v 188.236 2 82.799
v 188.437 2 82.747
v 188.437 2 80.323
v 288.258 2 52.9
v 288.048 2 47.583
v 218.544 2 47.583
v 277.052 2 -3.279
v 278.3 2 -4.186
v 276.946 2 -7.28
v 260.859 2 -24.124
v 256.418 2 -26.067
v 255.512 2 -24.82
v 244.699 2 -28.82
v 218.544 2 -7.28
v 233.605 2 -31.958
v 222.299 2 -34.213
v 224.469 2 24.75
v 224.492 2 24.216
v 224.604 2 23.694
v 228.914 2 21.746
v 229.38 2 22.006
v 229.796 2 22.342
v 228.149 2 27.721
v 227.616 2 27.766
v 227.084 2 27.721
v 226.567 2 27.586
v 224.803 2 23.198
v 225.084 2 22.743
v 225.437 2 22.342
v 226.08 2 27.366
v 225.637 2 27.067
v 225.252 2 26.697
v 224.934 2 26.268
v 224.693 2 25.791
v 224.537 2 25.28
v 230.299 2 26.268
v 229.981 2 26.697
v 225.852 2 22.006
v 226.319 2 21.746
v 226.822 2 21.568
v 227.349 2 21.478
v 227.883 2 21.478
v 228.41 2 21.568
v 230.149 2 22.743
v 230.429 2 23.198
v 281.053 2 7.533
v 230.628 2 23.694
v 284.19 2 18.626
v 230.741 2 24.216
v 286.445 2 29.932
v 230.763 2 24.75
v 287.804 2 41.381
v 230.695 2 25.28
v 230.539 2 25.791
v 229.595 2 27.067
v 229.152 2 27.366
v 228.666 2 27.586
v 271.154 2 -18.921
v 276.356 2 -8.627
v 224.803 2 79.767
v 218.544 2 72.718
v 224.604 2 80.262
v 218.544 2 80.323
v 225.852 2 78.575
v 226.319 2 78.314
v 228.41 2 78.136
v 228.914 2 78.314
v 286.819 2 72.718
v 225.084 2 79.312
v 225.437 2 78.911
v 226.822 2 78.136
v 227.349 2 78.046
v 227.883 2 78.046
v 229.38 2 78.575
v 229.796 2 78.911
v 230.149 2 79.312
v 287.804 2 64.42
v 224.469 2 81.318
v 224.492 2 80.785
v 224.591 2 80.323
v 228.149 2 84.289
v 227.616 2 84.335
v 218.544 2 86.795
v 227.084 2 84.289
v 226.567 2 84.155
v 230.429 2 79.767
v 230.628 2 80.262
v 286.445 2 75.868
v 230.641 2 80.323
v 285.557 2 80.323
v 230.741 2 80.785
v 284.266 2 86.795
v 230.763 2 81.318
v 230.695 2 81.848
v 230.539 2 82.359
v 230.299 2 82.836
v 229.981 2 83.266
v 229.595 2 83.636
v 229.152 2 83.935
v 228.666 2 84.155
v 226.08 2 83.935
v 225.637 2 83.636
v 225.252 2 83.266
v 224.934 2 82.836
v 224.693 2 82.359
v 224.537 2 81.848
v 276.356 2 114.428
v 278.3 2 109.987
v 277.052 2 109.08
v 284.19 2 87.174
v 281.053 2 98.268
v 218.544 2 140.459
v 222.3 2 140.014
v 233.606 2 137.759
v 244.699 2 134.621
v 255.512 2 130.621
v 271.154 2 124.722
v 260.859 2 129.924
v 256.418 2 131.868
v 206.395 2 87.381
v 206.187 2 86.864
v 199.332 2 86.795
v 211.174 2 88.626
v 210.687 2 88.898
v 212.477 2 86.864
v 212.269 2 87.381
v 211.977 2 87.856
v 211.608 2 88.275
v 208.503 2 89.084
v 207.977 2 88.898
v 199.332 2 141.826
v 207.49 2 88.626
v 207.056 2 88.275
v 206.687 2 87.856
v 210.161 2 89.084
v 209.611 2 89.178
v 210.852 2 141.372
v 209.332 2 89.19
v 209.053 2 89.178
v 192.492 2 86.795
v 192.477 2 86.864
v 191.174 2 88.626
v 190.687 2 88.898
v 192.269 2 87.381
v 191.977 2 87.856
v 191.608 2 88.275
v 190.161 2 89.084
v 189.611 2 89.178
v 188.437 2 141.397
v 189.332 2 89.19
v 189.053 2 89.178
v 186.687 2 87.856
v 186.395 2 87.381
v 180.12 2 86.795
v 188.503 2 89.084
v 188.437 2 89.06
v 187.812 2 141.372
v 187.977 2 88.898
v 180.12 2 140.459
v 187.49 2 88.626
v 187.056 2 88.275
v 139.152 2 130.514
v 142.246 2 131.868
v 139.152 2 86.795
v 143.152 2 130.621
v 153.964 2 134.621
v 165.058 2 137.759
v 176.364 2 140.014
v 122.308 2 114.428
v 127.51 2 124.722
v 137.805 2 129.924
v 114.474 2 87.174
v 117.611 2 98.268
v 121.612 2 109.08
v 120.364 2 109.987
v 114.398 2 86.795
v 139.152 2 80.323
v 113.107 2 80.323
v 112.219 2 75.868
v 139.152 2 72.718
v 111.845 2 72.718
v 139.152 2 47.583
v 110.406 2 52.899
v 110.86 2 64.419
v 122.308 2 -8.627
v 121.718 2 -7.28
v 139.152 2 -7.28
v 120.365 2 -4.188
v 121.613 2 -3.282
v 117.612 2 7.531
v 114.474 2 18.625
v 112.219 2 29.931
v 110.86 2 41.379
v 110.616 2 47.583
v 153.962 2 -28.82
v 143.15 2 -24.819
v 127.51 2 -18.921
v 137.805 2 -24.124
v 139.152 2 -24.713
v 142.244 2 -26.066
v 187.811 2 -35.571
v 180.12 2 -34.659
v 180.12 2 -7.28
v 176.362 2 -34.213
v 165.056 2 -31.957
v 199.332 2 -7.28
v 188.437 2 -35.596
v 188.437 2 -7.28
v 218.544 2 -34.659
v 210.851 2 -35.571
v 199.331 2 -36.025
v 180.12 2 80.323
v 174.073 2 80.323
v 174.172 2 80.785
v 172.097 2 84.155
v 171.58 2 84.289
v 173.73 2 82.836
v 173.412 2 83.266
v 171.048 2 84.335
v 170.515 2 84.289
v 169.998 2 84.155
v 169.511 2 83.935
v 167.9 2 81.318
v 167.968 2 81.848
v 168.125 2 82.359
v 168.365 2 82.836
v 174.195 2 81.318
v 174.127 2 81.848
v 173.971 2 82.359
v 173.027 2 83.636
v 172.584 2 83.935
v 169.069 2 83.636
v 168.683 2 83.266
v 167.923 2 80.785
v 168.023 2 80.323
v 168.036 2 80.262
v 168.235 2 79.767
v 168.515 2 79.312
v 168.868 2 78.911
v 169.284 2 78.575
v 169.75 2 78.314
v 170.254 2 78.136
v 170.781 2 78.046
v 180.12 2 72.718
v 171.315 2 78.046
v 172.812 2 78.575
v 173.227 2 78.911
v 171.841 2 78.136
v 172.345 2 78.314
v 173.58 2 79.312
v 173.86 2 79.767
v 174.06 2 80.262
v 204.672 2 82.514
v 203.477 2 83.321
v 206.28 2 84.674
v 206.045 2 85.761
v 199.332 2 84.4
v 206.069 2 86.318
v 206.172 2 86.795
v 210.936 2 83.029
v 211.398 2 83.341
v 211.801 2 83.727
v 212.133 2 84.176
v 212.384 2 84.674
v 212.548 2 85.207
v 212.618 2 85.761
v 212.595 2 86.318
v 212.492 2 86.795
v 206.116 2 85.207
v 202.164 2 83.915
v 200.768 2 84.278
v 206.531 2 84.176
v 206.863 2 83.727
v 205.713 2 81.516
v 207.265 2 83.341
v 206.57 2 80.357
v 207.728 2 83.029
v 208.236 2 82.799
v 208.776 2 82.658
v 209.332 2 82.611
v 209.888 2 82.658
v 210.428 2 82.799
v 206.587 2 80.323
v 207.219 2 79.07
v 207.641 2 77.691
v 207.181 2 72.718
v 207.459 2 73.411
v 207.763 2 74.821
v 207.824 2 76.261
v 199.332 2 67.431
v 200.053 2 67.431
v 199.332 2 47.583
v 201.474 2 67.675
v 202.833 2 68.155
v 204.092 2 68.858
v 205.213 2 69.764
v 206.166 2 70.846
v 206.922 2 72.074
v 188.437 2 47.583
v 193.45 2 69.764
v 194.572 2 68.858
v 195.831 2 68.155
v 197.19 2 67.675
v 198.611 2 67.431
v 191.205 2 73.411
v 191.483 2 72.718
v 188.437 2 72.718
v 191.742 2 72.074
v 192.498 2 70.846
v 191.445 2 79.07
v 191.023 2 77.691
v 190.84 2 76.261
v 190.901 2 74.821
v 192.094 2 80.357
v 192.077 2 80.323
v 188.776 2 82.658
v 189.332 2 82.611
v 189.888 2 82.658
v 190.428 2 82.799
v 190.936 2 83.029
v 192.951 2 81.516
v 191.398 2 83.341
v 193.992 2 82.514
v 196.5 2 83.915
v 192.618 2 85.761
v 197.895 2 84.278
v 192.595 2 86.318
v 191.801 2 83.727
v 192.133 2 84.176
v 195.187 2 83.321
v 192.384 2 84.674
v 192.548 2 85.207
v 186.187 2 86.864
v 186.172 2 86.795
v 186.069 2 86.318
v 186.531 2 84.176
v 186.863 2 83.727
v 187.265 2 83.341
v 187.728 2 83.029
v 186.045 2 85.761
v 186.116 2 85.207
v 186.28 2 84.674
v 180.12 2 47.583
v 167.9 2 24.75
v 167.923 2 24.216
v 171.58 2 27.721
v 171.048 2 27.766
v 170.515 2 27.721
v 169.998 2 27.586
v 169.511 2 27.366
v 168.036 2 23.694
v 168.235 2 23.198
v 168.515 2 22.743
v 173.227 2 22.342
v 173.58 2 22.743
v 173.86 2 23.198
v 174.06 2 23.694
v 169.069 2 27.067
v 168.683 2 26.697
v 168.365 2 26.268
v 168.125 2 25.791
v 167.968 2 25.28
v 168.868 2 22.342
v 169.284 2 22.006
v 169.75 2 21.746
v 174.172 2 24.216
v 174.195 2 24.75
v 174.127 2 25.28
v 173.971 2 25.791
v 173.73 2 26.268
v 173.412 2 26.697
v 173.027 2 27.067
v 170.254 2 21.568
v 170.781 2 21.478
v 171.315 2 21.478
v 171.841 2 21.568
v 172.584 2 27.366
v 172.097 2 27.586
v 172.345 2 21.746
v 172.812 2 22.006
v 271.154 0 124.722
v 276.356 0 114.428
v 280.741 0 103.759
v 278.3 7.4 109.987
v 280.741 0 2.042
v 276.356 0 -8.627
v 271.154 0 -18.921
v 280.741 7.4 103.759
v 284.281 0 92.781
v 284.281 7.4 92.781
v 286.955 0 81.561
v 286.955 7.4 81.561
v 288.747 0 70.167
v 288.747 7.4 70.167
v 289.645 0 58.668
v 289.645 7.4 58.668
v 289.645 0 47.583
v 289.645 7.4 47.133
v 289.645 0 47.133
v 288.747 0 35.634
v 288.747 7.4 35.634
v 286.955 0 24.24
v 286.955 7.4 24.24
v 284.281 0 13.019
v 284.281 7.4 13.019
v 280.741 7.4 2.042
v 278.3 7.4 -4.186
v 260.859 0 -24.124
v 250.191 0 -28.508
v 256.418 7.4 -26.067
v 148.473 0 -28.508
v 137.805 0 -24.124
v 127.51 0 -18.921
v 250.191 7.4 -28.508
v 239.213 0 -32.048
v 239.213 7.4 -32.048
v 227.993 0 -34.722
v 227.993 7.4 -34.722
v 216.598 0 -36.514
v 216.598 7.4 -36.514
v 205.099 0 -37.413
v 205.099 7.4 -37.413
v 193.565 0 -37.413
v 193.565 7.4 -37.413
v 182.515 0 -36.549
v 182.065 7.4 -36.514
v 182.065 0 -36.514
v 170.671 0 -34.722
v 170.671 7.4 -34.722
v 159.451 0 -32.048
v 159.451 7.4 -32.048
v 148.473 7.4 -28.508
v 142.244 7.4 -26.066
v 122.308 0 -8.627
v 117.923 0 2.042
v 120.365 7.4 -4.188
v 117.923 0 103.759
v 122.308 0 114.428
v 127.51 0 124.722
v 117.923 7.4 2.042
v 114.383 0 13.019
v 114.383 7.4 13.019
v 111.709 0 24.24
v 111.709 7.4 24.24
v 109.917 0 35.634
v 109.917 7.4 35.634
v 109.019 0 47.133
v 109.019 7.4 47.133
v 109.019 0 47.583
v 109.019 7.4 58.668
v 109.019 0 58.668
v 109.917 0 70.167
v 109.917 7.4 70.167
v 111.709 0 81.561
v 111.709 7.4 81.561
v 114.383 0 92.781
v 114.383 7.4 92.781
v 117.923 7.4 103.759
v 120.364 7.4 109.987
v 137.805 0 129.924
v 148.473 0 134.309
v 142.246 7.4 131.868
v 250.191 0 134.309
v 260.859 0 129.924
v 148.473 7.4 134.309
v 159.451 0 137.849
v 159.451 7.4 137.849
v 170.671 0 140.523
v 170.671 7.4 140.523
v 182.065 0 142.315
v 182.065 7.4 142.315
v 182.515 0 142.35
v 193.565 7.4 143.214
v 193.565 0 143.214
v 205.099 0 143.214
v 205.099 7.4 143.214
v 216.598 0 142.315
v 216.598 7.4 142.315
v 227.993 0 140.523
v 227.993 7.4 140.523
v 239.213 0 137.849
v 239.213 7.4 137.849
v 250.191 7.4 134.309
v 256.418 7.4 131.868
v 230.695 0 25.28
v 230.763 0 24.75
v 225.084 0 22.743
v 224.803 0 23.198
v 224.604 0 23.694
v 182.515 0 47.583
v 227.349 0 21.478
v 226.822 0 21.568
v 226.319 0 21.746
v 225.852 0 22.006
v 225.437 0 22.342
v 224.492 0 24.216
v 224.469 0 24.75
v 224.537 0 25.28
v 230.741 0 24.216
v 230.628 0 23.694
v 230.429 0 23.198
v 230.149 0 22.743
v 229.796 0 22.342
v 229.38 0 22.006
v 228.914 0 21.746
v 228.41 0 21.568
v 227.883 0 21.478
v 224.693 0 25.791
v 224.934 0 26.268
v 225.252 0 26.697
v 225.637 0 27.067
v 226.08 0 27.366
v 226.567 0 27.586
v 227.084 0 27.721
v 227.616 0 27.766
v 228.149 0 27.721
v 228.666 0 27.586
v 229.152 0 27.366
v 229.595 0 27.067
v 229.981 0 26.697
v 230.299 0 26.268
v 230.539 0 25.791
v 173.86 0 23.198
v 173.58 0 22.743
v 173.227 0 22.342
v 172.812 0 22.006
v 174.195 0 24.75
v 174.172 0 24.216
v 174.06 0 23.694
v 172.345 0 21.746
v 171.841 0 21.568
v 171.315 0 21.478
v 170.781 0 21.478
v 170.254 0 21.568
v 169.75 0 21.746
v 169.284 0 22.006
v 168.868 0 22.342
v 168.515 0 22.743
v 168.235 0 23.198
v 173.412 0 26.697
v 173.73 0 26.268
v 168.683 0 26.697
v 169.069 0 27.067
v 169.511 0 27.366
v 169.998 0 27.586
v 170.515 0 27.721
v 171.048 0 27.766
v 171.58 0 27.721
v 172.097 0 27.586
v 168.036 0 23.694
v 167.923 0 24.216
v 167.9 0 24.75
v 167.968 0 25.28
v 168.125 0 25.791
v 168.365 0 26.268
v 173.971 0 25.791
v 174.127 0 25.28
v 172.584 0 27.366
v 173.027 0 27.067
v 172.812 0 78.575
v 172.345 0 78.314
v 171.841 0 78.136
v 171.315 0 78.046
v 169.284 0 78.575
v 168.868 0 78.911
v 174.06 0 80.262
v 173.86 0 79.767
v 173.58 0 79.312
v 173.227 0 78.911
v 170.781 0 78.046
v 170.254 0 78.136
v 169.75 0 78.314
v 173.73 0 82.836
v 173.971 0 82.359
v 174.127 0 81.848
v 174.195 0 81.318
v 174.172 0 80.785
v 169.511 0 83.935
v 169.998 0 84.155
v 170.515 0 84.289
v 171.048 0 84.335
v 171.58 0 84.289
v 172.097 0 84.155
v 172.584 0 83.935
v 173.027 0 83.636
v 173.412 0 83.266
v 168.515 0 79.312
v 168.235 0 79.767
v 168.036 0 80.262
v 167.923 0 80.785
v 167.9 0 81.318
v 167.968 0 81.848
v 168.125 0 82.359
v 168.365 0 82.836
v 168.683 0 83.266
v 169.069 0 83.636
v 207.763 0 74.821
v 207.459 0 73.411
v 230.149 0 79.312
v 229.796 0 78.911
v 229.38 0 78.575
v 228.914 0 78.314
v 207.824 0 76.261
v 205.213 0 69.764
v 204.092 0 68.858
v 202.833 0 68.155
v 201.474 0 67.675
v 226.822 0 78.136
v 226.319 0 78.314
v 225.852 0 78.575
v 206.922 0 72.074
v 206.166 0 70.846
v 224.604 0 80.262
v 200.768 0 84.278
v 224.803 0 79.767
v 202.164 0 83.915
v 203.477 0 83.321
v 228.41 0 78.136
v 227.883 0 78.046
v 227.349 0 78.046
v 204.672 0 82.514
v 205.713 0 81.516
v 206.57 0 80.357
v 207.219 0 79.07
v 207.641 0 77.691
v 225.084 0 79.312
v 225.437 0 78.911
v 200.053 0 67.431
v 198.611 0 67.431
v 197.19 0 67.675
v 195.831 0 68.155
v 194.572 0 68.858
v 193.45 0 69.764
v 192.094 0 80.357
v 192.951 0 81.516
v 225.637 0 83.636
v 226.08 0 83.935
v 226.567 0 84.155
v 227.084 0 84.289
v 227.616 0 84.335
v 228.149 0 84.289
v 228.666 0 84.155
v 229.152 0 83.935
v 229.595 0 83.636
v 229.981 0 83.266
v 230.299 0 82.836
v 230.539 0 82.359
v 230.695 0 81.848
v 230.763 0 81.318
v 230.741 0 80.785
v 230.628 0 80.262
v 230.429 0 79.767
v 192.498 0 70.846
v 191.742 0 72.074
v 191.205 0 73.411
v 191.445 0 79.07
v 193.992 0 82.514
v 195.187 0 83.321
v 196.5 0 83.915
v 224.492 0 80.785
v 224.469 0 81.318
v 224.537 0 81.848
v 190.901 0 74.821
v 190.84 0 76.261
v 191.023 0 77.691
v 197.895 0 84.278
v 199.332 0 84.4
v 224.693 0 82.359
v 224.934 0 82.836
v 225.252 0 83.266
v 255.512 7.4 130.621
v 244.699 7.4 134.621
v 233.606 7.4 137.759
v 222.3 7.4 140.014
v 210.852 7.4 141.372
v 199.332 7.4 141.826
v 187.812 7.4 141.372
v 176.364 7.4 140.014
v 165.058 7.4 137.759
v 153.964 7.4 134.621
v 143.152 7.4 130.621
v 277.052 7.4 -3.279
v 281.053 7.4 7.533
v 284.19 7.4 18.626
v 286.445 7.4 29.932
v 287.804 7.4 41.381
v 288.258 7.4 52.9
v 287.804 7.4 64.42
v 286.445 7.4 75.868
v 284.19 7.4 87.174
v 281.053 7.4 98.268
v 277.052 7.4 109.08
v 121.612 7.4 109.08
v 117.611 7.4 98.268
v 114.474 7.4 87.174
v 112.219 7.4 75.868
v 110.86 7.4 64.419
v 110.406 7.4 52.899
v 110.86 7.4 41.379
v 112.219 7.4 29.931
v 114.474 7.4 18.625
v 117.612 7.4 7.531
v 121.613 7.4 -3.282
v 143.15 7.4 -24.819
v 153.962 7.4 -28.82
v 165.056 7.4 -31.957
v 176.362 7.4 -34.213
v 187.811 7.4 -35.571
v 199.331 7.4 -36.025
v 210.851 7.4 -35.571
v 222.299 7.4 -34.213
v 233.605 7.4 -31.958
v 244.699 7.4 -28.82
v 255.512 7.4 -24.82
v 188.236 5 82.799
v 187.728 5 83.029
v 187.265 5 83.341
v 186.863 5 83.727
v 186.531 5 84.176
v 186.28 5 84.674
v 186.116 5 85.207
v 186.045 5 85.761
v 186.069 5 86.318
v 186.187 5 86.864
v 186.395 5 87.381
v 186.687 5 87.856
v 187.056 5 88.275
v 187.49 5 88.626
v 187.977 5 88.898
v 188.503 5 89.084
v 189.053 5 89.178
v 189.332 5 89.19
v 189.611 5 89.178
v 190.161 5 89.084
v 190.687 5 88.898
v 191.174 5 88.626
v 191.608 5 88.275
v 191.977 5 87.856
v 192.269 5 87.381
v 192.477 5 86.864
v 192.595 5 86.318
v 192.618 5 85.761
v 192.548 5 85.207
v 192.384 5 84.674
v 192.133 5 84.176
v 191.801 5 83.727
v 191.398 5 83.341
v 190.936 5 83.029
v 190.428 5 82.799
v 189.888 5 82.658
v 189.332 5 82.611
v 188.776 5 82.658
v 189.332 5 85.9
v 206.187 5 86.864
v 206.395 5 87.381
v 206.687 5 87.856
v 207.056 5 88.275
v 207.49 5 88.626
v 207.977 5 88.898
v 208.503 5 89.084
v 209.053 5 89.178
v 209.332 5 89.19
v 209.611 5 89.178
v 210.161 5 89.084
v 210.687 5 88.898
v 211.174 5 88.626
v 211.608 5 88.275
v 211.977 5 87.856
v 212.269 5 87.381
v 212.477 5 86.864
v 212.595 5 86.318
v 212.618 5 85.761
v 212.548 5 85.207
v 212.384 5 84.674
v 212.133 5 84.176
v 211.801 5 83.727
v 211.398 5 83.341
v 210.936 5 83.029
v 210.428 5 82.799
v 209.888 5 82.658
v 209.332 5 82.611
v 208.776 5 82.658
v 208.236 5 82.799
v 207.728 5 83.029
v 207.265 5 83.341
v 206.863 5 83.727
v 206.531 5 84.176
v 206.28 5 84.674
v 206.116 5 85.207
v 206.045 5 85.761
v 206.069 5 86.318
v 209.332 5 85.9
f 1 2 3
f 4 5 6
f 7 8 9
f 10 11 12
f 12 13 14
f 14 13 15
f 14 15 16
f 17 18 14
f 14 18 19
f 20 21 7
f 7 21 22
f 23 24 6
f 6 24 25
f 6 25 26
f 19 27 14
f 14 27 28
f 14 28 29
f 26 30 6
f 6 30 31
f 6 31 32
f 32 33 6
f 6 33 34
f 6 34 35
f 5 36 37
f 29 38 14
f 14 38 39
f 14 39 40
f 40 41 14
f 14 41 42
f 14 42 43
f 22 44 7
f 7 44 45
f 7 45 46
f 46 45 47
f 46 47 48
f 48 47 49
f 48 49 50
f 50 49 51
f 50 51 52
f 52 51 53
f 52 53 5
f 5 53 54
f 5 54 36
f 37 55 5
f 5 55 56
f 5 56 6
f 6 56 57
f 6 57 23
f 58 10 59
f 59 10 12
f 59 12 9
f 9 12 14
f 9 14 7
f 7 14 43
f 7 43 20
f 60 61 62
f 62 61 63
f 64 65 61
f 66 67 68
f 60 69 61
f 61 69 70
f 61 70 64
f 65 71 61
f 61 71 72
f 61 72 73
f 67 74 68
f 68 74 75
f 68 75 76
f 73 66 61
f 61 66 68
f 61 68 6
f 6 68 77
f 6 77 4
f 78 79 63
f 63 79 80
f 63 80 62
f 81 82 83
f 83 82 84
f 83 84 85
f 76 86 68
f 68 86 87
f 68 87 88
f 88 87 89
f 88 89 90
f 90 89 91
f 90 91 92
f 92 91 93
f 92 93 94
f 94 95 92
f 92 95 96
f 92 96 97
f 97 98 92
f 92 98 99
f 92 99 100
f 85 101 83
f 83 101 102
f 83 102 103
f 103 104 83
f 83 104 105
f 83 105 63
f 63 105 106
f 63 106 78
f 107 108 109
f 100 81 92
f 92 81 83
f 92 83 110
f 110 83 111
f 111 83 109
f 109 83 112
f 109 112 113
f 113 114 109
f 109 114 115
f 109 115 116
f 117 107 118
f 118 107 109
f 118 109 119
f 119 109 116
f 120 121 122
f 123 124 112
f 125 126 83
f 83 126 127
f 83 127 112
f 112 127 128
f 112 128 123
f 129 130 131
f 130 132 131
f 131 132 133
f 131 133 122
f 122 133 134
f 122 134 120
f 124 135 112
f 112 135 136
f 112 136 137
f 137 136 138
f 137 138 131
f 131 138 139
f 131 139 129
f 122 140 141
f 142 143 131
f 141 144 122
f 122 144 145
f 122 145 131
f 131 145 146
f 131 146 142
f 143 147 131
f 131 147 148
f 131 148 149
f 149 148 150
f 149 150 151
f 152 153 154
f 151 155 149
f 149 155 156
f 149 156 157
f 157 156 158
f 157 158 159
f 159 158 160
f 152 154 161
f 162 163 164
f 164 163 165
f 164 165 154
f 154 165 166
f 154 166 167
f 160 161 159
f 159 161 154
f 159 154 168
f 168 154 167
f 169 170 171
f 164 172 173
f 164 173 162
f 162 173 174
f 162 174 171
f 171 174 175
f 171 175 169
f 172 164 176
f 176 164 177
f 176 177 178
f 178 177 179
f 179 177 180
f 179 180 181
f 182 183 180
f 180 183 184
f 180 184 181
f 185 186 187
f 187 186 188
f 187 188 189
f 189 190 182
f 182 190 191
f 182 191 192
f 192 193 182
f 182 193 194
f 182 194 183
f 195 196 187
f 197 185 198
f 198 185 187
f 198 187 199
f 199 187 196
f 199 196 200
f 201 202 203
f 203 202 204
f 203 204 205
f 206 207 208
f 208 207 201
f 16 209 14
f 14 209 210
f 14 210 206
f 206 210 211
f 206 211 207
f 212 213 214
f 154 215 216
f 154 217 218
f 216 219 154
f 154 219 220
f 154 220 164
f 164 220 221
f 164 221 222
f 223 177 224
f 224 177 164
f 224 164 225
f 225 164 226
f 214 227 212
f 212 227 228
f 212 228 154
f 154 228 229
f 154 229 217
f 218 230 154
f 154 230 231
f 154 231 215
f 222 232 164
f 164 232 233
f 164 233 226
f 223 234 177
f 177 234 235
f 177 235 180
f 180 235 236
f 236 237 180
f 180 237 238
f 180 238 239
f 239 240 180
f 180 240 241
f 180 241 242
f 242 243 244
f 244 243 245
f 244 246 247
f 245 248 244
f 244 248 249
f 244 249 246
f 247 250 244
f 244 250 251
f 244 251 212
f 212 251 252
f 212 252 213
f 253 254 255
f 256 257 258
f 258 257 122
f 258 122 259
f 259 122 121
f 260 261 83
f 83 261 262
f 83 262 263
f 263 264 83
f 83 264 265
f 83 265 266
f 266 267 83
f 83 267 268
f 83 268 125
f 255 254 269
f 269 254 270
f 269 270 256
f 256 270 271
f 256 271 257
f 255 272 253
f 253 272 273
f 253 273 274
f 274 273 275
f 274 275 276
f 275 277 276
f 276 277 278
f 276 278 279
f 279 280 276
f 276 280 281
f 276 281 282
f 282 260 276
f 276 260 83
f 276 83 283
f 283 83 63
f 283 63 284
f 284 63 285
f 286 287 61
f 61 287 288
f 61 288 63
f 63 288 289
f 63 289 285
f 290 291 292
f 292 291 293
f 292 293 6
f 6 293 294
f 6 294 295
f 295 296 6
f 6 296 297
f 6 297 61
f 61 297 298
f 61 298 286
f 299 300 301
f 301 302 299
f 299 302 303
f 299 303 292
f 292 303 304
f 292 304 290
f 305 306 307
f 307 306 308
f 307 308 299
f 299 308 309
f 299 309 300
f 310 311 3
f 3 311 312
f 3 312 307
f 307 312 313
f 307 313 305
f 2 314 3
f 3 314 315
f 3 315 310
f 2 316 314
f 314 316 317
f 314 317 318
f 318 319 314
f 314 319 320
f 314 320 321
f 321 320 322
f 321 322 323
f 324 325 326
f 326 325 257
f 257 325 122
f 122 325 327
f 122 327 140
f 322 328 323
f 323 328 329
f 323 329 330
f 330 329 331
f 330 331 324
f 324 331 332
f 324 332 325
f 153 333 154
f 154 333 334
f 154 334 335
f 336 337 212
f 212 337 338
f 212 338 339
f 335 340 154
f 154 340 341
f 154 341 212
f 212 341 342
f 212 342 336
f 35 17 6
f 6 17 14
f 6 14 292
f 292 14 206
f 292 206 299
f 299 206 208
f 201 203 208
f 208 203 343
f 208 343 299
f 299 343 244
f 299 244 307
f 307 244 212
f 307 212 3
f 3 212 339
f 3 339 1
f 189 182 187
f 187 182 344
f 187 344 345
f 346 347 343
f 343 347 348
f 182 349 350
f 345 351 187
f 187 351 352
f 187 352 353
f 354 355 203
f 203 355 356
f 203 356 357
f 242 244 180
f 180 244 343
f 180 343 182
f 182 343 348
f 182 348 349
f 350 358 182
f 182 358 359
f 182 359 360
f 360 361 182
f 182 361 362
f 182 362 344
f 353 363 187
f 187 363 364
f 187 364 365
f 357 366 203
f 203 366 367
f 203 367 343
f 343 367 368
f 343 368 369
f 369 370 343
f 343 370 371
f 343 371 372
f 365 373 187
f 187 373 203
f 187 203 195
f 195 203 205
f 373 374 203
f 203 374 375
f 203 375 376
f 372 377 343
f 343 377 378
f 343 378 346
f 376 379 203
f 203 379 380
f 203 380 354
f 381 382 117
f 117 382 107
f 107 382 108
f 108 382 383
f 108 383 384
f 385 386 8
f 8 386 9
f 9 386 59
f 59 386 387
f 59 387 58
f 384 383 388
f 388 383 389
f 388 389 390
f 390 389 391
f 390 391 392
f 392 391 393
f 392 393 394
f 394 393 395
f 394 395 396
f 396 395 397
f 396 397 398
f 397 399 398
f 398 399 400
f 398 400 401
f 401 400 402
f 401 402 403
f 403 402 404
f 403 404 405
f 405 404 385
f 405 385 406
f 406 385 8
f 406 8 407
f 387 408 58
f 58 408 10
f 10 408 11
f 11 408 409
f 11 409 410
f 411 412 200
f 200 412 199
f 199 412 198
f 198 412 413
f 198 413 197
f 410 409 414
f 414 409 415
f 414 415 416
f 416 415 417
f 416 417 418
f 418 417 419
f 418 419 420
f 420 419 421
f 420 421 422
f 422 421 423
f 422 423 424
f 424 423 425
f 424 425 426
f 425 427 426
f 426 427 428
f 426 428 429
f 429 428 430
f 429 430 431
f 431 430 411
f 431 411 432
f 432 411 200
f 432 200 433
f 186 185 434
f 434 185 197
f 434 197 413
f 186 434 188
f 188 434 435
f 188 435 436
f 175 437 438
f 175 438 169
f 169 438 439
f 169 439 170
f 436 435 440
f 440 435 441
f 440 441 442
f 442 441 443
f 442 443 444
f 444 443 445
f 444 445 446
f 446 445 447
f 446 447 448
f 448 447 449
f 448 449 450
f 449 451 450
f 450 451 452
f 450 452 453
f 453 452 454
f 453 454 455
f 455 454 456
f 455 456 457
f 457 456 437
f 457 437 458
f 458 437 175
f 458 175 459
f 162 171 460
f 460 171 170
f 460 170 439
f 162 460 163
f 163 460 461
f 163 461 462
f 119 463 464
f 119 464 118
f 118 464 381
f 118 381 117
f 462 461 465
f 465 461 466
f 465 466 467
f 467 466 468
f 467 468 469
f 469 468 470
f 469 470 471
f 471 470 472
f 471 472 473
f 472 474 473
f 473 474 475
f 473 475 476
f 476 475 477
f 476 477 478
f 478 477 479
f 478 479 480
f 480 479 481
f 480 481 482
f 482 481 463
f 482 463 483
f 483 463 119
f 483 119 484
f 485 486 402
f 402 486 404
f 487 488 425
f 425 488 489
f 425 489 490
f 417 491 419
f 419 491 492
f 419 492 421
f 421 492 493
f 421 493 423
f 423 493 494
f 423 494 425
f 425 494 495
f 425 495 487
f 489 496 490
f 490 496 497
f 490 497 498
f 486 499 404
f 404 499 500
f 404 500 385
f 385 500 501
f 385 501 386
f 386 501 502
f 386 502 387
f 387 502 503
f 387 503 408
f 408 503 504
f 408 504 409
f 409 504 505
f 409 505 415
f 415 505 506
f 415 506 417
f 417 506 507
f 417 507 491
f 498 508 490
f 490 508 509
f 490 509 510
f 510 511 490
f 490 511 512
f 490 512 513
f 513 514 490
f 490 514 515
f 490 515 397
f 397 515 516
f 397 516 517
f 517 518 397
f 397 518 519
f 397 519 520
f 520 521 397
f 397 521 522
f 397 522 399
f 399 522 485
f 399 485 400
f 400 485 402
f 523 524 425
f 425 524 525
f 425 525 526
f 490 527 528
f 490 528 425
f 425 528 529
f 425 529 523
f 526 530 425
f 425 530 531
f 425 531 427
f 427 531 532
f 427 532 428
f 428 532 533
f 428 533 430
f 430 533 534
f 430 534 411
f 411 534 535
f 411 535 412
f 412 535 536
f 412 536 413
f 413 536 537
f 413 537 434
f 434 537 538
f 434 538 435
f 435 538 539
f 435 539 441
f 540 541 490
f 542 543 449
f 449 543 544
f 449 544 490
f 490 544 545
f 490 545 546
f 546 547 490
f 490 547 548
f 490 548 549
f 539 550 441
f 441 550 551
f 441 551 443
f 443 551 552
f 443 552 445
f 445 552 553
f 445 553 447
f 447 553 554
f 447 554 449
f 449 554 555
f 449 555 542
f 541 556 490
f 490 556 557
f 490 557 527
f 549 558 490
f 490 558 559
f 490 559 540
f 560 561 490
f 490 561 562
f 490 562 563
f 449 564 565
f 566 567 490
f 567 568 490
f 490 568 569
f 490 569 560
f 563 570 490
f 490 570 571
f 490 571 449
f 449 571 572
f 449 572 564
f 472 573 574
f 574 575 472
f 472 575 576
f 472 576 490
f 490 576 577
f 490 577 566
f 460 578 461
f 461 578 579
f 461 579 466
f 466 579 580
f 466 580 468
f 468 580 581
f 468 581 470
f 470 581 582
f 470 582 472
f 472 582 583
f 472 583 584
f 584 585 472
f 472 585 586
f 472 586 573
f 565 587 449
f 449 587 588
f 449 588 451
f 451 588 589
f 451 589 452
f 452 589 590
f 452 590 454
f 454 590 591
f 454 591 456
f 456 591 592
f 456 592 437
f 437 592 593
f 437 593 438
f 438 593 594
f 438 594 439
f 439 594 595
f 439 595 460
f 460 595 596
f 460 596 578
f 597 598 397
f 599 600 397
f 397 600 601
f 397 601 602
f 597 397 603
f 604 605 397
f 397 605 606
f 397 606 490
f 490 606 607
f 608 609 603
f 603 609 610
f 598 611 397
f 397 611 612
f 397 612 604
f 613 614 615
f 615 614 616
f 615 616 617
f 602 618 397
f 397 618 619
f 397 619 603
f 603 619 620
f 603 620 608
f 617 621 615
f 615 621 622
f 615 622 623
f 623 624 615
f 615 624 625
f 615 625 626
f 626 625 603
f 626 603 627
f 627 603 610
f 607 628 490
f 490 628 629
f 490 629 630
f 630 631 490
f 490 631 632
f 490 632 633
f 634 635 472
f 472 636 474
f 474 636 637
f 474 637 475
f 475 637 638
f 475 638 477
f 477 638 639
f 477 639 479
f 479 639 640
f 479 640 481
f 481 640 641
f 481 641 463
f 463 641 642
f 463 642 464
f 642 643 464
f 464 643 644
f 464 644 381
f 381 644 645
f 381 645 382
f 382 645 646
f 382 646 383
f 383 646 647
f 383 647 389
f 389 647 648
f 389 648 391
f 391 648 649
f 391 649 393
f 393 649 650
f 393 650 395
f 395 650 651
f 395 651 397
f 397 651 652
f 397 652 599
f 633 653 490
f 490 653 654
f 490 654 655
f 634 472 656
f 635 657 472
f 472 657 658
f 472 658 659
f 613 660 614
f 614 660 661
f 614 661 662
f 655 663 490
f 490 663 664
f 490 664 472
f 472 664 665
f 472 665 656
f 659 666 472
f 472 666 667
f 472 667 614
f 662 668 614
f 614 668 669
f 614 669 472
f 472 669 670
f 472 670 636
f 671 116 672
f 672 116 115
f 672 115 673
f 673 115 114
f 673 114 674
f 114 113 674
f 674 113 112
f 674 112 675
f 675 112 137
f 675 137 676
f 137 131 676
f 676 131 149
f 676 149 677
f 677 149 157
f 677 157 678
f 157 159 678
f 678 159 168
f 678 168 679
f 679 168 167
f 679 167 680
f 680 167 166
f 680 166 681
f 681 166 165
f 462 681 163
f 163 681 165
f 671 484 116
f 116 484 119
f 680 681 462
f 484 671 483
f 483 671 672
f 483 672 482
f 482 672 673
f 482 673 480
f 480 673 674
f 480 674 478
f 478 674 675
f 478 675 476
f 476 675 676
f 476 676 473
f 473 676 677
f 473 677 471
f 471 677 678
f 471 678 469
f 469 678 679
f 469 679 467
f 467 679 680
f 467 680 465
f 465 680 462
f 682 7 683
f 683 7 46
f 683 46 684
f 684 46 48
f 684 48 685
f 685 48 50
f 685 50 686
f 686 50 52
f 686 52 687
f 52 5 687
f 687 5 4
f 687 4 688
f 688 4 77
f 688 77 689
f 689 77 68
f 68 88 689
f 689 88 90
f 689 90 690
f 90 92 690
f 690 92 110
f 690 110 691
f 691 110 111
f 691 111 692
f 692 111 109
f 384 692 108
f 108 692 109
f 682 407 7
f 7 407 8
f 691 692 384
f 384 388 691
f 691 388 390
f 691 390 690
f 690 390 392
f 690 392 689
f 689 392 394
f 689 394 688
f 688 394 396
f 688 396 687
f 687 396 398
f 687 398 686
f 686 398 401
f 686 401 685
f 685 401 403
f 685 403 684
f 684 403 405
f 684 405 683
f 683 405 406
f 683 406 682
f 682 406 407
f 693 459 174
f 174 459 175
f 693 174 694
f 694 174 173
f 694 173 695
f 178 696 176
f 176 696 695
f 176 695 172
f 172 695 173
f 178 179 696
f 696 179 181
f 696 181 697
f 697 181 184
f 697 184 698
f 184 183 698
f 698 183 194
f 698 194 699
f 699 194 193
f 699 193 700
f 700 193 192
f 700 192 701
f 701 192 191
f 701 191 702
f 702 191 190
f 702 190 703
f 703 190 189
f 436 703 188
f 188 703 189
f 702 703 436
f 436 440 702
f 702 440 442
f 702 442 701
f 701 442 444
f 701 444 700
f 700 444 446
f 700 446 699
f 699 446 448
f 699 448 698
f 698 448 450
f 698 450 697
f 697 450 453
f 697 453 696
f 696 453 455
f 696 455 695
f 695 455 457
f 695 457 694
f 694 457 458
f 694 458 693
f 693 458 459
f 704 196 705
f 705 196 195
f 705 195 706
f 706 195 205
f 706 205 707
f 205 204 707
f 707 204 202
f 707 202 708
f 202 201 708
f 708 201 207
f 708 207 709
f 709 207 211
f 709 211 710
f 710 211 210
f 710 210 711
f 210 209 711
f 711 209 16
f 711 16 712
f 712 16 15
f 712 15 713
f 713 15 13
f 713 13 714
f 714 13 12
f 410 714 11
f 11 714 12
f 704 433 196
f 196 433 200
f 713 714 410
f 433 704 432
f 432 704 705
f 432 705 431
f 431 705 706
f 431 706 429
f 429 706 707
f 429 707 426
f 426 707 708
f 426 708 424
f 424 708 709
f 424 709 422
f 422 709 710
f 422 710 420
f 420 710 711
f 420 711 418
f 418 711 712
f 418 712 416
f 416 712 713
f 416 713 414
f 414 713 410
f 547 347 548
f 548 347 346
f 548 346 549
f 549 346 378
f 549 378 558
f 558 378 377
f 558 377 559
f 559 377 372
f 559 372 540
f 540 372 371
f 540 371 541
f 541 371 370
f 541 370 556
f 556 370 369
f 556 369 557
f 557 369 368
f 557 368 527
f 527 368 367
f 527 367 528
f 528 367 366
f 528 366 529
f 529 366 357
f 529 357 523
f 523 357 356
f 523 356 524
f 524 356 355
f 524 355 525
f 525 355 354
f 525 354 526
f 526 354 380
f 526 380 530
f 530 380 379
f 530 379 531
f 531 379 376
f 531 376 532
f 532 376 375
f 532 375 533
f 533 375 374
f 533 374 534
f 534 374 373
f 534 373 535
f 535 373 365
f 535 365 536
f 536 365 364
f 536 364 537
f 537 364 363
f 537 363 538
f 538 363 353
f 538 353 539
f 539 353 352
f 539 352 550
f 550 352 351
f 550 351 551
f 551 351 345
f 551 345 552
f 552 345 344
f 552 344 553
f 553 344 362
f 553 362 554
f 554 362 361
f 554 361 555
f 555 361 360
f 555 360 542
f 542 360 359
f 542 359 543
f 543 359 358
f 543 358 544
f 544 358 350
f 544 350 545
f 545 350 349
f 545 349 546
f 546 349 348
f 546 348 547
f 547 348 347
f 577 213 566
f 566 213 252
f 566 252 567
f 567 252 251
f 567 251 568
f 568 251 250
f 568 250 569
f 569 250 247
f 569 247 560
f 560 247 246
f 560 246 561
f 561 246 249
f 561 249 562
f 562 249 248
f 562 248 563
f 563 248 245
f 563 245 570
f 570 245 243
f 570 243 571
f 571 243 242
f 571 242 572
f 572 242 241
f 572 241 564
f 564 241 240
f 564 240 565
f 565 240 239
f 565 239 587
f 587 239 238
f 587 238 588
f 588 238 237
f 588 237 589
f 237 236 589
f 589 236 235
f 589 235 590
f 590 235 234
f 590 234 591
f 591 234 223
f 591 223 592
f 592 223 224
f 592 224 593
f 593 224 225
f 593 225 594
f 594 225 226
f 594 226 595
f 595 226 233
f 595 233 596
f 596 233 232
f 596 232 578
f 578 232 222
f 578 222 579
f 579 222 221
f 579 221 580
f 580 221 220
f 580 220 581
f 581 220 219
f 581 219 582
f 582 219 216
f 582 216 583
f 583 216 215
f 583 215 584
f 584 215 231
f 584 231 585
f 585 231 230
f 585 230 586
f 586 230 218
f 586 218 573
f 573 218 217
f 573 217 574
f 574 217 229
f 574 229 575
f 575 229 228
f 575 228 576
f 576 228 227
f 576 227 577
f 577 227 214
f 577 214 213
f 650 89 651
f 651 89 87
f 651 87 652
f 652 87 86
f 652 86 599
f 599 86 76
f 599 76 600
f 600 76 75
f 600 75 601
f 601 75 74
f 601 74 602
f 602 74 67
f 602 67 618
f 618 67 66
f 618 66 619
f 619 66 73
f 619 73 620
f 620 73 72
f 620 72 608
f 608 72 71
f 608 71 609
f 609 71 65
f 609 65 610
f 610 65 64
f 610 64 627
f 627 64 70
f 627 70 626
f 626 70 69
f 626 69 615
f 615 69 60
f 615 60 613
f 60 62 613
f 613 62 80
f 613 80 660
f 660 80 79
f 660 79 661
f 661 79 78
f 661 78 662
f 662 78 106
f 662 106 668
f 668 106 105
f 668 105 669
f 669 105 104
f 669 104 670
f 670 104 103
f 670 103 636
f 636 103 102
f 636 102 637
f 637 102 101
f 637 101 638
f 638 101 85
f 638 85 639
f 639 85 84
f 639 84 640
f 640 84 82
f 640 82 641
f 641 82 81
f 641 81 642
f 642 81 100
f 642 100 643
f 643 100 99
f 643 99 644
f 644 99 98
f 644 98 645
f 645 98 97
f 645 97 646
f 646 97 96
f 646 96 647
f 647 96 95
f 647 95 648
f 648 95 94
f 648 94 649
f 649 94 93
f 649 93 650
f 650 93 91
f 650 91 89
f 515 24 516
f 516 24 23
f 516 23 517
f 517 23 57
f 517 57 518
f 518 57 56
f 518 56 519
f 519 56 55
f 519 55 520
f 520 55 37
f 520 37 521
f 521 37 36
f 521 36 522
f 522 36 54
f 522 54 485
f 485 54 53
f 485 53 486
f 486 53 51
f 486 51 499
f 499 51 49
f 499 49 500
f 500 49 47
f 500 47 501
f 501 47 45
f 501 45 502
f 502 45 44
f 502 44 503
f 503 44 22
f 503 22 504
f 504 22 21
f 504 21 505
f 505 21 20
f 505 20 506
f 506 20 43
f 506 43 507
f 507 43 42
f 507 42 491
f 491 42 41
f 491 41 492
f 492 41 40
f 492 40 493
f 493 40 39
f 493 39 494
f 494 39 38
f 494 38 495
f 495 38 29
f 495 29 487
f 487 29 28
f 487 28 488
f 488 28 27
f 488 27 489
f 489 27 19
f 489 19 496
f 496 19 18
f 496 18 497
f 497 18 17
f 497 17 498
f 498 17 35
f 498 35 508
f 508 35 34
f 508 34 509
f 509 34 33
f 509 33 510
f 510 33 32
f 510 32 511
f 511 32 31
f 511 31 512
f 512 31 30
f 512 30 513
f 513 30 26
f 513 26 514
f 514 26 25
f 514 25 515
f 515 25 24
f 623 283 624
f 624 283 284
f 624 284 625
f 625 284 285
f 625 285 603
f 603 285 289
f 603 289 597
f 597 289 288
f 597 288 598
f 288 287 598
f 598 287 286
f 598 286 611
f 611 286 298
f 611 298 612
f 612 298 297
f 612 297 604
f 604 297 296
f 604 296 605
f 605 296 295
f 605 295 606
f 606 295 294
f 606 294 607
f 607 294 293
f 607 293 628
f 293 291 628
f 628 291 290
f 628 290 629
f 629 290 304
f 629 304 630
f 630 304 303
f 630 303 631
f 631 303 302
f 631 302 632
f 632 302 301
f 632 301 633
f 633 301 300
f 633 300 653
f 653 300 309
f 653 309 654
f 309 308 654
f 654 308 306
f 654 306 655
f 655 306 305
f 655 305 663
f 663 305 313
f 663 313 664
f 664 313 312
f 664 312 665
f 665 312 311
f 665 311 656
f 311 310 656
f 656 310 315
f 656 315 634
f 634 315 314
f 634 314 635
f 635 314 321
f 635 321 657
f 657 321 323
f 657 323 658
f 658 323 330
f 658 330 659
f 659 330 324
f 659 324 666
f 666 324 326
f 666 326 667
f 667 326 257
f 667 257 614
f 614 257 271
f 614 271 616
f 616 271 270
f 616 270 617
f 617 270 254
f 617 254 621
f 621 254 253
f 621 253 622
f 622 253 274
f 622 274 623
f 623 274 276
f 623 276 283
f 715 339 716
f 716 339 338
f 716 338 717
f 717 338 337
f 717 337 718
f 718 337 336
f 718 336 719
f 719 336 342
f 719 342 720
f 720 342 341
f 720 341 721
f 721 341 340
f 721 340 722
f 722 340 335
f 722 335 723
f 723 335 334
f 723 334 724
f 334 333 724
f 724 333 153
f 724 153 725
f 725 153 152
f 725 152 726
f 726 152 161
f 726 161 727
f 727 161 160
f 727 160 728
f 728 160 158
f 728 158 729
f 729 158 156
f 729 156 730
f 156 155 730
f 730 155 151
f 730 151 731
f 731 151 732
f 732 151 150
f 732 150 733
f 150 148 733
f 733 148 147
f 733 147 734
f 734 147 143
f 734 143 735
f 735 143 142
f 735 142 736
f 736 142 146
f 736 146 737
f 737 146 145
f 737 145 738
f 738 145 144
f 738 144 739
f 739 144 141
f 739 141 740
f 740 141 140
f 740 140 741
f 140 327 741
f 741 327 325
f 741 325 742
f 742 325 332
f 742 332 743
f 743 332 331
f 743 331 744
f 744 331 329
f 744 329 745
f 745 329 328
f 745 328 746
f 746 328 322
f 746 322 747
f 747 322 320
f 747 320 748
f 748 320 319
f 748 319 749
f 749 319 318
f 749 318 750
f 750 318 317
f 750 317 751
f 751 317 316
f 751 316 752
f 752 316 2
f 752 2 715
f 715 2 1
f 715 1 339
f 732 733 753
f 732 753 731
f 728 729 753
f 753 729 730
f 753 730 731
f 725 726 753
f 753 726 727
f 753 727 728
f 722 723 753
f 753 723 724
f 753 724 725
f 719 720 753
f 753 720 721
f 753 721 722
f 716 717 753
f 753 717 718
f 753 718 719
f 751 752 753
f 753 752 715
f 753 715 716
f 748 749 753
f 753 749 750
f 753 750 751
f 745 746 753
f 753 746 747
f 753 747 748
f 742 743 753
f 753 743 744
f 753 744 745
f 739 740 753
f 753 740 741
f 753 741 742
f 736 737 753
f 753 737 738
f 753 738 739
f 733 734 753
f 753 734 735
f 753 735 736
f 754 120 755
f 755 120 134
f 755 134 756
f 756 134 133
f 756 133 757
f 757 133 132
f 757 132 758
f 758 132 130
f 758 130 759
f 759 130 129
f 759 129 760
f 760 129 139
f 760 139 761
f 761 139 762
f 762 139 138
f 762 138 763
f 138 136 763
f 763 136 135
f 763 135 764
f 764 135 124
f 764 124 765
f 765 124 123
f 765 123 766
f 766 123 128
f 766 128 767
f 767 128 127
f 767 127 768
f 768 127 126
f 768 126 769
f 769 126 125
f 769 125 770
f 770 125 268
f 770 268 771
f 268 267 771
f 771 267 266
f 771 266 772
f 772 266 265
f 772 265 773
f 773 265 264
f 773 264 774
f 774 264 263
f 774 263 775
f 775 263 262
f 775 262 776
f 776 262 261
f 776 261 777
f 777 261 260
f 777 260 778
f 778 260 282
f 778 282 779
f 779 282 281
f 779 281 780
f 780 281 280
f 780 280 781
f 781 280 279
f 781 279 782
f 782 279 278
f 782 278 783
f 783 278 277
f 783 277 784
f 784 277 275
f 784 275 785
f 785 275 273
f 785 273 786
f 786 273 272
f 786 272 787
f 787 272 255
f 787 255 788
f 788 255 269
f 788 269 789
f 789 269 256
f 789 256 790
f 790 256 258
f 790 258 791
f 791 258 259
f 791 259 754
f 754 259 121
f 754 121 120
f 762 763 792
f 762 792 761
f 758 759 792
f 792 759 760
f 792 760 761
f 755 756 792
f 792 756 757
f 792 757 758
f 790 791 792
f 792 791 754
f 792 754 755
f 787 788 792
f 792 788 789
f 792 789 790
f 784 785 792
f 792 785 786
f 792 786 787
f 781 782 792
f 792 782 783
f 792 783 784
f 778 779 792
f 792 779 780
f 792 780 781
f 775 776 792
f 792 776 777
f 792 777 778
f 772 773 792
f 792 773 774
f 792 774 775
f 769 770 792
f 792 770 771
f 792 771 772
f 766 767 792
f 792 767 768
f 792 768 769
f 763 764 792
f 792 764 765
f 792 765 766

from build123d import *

# Parameters (mm, degrees)
BOSS_EXTRUDE1_DEPTH     = 2
BOSS_EXTRUDE2_DEPTH     = 5.4
CUT_EXTRUDE2_DEPTH      = 324.312541101
CUT_EXTRUDE2_DEPTH_BACK = 324.312541101
SKETCH11_R              = 3.15
SKETCH11_R_2            = 8.5
SKETCH13_R              = 3.289472506
BOSS_EXTRUDE3_DEPTH     = 3


with BuildPart() as part:
    # Sketch3 → Boss-Extrude1 (new body)
    with BuildSketch(Plane(origin=(0, 0, 0), x_dir=(1, 0, 0), z_dir=(0, 1, 0))):
        with BuildLine():
            ThreePointArc((271.153533245, 18.921159404), (199.331937646, 37.525228411), (127.510342047, 18.921159404))
            ThreePointArc((127.510342047, 18.921159404), (108.90627304, -52.900436194), (127.510342047, -124.722031793))
            ThreePointArc((127.510342047, -124.722031793), (199.331937646, -143.3261008), (271.153533245, -124.722031793))
            ThreePointArc((271.153533245, -124.722031793), (289.757602252, -52.900436194), (271.153533245, 18.921159404))
        make_face()
    extrude(amount=BOSS_EXTRUDE1_DEPTH)

    # Sketch5 → Boss-Extrude2 (add)
    with BuildSketch(Plane(origin=(0, 2, 0), x_dir=(1, 0, 0), z_dir=(0, 1, 0))):
        with BuildLine():
            Line((121.611565862, -109.080289564), (120.36423024, -109.98653194))
            ThreePointArc((120.36423024, -109.98653194), (108.906273045, -52.899217103), (120.365171108, 4.187908885))
            Line((120.365171108, 4.187908885), (121.612501818, 3.281670078))
            ThreePointArc((121.612501818, 3.281670078), (110.406273045, -52.899216401), (121.611565862, -109.080289564))
        make_face()
        with BuildLine():
            Line((143.152084277, -130.620807978), (142.2458419, -131.8681436))
            ThreePointArc((142.2458419, -131.8681436), (199.331937646, -143.3261008), (256.418033392, -131.8681436))
            Line((256.418033392, -131.8681436), (255.511791015, -130.620807978))
            ThreePointArc((255.511791015, -130.620807978), (199.331937646, -141.8261008), (143.152084277, -130.620807978))
        make_face()
        with BuildLine():
            Line((277.052309429, 3.279417175), (278.299645052, 4.185659552))
            ThreePointArc((278.299645052, 4.185659552), (289.757602252, -52.900436194), (278.299645052, -109.98653194))
            Line((278.299645052, -109.98653194), (277.052309429, -109.080289564))
            ThreePointArc((277.052309429, -109.080289564), (288.257602252, -52.900436194), (277.052309429, 3.279417175))
        make_face()
        with BuildLine():
            Line((255.511791015, 24.819935589), (256.418033392, 26.067271212))
            ThreePointArc((256.418033392, 26.067271212), (199.330718555, 37.525228406), (142.243592567, 26.066330343))
            Line((142.243592567, 26.066330343), (143.149831374, 24.818999633))
            ThreePointArc((143.149831374, 24.818999633), (199.330717853, 36.025228406), (255.511791015, 24.819935589))
        make_face()
    extrude(amount=BOSS_EXTRUDE2_DEPTH)

    # Sketch11 → Cut-Extrude2 (cut, two sides: drawn at the far end of the back side and taken through both)
    with BuildSketch(Plane(origin=(0, 2, 0), x_dir=(1, 0, 0), z_dir=(0, 1, 0)).offset(-CUT_EXTRUDE2_DEPTH_BACK)):
        with Locations(Location((171.047666398, -24.616164947, 0), (0, 0, 270))):
            Circle(SKETCH11_R)
        with Locations(Location((227.616208893, -24.616164947, 0), (0, 0, 270))):
            Circle(SKETCH11_R)
        with Locations(Location((227.616208893, -81.184707442, 0), (0, 0, 270))):
            Circle(SKETCH11_R)
        with Locations(Location((171.047666398, -81.184707442, 0), (0, 0, 270))):
            Circle(SKETCH11_R)
        with Locations(Location((199.331937646, -75.900436194, 0), (0, 0, 270))):
            Circle(SKETCH11_R_2)
    extrude(amount=CUT_EXTRUDE2_DEPTH + CUT_EXTRUDE2_DEPTH_BACK, mode=Mode.SUBTRACT)

    # Sketch13 → Boss-Extrude3 (add)
    with BuildSketch(Plane(origin=(0, 2, 0), x_dir=(1, 0, 0), z_dir=(0, 1, 0))):
        with Locations(Location((189.331937646, -85.900436194, 0), (0, 0, 270))):
            Circle(SKETCH13_R)
        with Locations(Location((209.331937646, -85.900436194, 0), (0, 0, 270))):
            Circle(SKETCH13_R)
    extrude(amount=BOSS_EXTRUDE3_DEPTH)


solid = part.part
